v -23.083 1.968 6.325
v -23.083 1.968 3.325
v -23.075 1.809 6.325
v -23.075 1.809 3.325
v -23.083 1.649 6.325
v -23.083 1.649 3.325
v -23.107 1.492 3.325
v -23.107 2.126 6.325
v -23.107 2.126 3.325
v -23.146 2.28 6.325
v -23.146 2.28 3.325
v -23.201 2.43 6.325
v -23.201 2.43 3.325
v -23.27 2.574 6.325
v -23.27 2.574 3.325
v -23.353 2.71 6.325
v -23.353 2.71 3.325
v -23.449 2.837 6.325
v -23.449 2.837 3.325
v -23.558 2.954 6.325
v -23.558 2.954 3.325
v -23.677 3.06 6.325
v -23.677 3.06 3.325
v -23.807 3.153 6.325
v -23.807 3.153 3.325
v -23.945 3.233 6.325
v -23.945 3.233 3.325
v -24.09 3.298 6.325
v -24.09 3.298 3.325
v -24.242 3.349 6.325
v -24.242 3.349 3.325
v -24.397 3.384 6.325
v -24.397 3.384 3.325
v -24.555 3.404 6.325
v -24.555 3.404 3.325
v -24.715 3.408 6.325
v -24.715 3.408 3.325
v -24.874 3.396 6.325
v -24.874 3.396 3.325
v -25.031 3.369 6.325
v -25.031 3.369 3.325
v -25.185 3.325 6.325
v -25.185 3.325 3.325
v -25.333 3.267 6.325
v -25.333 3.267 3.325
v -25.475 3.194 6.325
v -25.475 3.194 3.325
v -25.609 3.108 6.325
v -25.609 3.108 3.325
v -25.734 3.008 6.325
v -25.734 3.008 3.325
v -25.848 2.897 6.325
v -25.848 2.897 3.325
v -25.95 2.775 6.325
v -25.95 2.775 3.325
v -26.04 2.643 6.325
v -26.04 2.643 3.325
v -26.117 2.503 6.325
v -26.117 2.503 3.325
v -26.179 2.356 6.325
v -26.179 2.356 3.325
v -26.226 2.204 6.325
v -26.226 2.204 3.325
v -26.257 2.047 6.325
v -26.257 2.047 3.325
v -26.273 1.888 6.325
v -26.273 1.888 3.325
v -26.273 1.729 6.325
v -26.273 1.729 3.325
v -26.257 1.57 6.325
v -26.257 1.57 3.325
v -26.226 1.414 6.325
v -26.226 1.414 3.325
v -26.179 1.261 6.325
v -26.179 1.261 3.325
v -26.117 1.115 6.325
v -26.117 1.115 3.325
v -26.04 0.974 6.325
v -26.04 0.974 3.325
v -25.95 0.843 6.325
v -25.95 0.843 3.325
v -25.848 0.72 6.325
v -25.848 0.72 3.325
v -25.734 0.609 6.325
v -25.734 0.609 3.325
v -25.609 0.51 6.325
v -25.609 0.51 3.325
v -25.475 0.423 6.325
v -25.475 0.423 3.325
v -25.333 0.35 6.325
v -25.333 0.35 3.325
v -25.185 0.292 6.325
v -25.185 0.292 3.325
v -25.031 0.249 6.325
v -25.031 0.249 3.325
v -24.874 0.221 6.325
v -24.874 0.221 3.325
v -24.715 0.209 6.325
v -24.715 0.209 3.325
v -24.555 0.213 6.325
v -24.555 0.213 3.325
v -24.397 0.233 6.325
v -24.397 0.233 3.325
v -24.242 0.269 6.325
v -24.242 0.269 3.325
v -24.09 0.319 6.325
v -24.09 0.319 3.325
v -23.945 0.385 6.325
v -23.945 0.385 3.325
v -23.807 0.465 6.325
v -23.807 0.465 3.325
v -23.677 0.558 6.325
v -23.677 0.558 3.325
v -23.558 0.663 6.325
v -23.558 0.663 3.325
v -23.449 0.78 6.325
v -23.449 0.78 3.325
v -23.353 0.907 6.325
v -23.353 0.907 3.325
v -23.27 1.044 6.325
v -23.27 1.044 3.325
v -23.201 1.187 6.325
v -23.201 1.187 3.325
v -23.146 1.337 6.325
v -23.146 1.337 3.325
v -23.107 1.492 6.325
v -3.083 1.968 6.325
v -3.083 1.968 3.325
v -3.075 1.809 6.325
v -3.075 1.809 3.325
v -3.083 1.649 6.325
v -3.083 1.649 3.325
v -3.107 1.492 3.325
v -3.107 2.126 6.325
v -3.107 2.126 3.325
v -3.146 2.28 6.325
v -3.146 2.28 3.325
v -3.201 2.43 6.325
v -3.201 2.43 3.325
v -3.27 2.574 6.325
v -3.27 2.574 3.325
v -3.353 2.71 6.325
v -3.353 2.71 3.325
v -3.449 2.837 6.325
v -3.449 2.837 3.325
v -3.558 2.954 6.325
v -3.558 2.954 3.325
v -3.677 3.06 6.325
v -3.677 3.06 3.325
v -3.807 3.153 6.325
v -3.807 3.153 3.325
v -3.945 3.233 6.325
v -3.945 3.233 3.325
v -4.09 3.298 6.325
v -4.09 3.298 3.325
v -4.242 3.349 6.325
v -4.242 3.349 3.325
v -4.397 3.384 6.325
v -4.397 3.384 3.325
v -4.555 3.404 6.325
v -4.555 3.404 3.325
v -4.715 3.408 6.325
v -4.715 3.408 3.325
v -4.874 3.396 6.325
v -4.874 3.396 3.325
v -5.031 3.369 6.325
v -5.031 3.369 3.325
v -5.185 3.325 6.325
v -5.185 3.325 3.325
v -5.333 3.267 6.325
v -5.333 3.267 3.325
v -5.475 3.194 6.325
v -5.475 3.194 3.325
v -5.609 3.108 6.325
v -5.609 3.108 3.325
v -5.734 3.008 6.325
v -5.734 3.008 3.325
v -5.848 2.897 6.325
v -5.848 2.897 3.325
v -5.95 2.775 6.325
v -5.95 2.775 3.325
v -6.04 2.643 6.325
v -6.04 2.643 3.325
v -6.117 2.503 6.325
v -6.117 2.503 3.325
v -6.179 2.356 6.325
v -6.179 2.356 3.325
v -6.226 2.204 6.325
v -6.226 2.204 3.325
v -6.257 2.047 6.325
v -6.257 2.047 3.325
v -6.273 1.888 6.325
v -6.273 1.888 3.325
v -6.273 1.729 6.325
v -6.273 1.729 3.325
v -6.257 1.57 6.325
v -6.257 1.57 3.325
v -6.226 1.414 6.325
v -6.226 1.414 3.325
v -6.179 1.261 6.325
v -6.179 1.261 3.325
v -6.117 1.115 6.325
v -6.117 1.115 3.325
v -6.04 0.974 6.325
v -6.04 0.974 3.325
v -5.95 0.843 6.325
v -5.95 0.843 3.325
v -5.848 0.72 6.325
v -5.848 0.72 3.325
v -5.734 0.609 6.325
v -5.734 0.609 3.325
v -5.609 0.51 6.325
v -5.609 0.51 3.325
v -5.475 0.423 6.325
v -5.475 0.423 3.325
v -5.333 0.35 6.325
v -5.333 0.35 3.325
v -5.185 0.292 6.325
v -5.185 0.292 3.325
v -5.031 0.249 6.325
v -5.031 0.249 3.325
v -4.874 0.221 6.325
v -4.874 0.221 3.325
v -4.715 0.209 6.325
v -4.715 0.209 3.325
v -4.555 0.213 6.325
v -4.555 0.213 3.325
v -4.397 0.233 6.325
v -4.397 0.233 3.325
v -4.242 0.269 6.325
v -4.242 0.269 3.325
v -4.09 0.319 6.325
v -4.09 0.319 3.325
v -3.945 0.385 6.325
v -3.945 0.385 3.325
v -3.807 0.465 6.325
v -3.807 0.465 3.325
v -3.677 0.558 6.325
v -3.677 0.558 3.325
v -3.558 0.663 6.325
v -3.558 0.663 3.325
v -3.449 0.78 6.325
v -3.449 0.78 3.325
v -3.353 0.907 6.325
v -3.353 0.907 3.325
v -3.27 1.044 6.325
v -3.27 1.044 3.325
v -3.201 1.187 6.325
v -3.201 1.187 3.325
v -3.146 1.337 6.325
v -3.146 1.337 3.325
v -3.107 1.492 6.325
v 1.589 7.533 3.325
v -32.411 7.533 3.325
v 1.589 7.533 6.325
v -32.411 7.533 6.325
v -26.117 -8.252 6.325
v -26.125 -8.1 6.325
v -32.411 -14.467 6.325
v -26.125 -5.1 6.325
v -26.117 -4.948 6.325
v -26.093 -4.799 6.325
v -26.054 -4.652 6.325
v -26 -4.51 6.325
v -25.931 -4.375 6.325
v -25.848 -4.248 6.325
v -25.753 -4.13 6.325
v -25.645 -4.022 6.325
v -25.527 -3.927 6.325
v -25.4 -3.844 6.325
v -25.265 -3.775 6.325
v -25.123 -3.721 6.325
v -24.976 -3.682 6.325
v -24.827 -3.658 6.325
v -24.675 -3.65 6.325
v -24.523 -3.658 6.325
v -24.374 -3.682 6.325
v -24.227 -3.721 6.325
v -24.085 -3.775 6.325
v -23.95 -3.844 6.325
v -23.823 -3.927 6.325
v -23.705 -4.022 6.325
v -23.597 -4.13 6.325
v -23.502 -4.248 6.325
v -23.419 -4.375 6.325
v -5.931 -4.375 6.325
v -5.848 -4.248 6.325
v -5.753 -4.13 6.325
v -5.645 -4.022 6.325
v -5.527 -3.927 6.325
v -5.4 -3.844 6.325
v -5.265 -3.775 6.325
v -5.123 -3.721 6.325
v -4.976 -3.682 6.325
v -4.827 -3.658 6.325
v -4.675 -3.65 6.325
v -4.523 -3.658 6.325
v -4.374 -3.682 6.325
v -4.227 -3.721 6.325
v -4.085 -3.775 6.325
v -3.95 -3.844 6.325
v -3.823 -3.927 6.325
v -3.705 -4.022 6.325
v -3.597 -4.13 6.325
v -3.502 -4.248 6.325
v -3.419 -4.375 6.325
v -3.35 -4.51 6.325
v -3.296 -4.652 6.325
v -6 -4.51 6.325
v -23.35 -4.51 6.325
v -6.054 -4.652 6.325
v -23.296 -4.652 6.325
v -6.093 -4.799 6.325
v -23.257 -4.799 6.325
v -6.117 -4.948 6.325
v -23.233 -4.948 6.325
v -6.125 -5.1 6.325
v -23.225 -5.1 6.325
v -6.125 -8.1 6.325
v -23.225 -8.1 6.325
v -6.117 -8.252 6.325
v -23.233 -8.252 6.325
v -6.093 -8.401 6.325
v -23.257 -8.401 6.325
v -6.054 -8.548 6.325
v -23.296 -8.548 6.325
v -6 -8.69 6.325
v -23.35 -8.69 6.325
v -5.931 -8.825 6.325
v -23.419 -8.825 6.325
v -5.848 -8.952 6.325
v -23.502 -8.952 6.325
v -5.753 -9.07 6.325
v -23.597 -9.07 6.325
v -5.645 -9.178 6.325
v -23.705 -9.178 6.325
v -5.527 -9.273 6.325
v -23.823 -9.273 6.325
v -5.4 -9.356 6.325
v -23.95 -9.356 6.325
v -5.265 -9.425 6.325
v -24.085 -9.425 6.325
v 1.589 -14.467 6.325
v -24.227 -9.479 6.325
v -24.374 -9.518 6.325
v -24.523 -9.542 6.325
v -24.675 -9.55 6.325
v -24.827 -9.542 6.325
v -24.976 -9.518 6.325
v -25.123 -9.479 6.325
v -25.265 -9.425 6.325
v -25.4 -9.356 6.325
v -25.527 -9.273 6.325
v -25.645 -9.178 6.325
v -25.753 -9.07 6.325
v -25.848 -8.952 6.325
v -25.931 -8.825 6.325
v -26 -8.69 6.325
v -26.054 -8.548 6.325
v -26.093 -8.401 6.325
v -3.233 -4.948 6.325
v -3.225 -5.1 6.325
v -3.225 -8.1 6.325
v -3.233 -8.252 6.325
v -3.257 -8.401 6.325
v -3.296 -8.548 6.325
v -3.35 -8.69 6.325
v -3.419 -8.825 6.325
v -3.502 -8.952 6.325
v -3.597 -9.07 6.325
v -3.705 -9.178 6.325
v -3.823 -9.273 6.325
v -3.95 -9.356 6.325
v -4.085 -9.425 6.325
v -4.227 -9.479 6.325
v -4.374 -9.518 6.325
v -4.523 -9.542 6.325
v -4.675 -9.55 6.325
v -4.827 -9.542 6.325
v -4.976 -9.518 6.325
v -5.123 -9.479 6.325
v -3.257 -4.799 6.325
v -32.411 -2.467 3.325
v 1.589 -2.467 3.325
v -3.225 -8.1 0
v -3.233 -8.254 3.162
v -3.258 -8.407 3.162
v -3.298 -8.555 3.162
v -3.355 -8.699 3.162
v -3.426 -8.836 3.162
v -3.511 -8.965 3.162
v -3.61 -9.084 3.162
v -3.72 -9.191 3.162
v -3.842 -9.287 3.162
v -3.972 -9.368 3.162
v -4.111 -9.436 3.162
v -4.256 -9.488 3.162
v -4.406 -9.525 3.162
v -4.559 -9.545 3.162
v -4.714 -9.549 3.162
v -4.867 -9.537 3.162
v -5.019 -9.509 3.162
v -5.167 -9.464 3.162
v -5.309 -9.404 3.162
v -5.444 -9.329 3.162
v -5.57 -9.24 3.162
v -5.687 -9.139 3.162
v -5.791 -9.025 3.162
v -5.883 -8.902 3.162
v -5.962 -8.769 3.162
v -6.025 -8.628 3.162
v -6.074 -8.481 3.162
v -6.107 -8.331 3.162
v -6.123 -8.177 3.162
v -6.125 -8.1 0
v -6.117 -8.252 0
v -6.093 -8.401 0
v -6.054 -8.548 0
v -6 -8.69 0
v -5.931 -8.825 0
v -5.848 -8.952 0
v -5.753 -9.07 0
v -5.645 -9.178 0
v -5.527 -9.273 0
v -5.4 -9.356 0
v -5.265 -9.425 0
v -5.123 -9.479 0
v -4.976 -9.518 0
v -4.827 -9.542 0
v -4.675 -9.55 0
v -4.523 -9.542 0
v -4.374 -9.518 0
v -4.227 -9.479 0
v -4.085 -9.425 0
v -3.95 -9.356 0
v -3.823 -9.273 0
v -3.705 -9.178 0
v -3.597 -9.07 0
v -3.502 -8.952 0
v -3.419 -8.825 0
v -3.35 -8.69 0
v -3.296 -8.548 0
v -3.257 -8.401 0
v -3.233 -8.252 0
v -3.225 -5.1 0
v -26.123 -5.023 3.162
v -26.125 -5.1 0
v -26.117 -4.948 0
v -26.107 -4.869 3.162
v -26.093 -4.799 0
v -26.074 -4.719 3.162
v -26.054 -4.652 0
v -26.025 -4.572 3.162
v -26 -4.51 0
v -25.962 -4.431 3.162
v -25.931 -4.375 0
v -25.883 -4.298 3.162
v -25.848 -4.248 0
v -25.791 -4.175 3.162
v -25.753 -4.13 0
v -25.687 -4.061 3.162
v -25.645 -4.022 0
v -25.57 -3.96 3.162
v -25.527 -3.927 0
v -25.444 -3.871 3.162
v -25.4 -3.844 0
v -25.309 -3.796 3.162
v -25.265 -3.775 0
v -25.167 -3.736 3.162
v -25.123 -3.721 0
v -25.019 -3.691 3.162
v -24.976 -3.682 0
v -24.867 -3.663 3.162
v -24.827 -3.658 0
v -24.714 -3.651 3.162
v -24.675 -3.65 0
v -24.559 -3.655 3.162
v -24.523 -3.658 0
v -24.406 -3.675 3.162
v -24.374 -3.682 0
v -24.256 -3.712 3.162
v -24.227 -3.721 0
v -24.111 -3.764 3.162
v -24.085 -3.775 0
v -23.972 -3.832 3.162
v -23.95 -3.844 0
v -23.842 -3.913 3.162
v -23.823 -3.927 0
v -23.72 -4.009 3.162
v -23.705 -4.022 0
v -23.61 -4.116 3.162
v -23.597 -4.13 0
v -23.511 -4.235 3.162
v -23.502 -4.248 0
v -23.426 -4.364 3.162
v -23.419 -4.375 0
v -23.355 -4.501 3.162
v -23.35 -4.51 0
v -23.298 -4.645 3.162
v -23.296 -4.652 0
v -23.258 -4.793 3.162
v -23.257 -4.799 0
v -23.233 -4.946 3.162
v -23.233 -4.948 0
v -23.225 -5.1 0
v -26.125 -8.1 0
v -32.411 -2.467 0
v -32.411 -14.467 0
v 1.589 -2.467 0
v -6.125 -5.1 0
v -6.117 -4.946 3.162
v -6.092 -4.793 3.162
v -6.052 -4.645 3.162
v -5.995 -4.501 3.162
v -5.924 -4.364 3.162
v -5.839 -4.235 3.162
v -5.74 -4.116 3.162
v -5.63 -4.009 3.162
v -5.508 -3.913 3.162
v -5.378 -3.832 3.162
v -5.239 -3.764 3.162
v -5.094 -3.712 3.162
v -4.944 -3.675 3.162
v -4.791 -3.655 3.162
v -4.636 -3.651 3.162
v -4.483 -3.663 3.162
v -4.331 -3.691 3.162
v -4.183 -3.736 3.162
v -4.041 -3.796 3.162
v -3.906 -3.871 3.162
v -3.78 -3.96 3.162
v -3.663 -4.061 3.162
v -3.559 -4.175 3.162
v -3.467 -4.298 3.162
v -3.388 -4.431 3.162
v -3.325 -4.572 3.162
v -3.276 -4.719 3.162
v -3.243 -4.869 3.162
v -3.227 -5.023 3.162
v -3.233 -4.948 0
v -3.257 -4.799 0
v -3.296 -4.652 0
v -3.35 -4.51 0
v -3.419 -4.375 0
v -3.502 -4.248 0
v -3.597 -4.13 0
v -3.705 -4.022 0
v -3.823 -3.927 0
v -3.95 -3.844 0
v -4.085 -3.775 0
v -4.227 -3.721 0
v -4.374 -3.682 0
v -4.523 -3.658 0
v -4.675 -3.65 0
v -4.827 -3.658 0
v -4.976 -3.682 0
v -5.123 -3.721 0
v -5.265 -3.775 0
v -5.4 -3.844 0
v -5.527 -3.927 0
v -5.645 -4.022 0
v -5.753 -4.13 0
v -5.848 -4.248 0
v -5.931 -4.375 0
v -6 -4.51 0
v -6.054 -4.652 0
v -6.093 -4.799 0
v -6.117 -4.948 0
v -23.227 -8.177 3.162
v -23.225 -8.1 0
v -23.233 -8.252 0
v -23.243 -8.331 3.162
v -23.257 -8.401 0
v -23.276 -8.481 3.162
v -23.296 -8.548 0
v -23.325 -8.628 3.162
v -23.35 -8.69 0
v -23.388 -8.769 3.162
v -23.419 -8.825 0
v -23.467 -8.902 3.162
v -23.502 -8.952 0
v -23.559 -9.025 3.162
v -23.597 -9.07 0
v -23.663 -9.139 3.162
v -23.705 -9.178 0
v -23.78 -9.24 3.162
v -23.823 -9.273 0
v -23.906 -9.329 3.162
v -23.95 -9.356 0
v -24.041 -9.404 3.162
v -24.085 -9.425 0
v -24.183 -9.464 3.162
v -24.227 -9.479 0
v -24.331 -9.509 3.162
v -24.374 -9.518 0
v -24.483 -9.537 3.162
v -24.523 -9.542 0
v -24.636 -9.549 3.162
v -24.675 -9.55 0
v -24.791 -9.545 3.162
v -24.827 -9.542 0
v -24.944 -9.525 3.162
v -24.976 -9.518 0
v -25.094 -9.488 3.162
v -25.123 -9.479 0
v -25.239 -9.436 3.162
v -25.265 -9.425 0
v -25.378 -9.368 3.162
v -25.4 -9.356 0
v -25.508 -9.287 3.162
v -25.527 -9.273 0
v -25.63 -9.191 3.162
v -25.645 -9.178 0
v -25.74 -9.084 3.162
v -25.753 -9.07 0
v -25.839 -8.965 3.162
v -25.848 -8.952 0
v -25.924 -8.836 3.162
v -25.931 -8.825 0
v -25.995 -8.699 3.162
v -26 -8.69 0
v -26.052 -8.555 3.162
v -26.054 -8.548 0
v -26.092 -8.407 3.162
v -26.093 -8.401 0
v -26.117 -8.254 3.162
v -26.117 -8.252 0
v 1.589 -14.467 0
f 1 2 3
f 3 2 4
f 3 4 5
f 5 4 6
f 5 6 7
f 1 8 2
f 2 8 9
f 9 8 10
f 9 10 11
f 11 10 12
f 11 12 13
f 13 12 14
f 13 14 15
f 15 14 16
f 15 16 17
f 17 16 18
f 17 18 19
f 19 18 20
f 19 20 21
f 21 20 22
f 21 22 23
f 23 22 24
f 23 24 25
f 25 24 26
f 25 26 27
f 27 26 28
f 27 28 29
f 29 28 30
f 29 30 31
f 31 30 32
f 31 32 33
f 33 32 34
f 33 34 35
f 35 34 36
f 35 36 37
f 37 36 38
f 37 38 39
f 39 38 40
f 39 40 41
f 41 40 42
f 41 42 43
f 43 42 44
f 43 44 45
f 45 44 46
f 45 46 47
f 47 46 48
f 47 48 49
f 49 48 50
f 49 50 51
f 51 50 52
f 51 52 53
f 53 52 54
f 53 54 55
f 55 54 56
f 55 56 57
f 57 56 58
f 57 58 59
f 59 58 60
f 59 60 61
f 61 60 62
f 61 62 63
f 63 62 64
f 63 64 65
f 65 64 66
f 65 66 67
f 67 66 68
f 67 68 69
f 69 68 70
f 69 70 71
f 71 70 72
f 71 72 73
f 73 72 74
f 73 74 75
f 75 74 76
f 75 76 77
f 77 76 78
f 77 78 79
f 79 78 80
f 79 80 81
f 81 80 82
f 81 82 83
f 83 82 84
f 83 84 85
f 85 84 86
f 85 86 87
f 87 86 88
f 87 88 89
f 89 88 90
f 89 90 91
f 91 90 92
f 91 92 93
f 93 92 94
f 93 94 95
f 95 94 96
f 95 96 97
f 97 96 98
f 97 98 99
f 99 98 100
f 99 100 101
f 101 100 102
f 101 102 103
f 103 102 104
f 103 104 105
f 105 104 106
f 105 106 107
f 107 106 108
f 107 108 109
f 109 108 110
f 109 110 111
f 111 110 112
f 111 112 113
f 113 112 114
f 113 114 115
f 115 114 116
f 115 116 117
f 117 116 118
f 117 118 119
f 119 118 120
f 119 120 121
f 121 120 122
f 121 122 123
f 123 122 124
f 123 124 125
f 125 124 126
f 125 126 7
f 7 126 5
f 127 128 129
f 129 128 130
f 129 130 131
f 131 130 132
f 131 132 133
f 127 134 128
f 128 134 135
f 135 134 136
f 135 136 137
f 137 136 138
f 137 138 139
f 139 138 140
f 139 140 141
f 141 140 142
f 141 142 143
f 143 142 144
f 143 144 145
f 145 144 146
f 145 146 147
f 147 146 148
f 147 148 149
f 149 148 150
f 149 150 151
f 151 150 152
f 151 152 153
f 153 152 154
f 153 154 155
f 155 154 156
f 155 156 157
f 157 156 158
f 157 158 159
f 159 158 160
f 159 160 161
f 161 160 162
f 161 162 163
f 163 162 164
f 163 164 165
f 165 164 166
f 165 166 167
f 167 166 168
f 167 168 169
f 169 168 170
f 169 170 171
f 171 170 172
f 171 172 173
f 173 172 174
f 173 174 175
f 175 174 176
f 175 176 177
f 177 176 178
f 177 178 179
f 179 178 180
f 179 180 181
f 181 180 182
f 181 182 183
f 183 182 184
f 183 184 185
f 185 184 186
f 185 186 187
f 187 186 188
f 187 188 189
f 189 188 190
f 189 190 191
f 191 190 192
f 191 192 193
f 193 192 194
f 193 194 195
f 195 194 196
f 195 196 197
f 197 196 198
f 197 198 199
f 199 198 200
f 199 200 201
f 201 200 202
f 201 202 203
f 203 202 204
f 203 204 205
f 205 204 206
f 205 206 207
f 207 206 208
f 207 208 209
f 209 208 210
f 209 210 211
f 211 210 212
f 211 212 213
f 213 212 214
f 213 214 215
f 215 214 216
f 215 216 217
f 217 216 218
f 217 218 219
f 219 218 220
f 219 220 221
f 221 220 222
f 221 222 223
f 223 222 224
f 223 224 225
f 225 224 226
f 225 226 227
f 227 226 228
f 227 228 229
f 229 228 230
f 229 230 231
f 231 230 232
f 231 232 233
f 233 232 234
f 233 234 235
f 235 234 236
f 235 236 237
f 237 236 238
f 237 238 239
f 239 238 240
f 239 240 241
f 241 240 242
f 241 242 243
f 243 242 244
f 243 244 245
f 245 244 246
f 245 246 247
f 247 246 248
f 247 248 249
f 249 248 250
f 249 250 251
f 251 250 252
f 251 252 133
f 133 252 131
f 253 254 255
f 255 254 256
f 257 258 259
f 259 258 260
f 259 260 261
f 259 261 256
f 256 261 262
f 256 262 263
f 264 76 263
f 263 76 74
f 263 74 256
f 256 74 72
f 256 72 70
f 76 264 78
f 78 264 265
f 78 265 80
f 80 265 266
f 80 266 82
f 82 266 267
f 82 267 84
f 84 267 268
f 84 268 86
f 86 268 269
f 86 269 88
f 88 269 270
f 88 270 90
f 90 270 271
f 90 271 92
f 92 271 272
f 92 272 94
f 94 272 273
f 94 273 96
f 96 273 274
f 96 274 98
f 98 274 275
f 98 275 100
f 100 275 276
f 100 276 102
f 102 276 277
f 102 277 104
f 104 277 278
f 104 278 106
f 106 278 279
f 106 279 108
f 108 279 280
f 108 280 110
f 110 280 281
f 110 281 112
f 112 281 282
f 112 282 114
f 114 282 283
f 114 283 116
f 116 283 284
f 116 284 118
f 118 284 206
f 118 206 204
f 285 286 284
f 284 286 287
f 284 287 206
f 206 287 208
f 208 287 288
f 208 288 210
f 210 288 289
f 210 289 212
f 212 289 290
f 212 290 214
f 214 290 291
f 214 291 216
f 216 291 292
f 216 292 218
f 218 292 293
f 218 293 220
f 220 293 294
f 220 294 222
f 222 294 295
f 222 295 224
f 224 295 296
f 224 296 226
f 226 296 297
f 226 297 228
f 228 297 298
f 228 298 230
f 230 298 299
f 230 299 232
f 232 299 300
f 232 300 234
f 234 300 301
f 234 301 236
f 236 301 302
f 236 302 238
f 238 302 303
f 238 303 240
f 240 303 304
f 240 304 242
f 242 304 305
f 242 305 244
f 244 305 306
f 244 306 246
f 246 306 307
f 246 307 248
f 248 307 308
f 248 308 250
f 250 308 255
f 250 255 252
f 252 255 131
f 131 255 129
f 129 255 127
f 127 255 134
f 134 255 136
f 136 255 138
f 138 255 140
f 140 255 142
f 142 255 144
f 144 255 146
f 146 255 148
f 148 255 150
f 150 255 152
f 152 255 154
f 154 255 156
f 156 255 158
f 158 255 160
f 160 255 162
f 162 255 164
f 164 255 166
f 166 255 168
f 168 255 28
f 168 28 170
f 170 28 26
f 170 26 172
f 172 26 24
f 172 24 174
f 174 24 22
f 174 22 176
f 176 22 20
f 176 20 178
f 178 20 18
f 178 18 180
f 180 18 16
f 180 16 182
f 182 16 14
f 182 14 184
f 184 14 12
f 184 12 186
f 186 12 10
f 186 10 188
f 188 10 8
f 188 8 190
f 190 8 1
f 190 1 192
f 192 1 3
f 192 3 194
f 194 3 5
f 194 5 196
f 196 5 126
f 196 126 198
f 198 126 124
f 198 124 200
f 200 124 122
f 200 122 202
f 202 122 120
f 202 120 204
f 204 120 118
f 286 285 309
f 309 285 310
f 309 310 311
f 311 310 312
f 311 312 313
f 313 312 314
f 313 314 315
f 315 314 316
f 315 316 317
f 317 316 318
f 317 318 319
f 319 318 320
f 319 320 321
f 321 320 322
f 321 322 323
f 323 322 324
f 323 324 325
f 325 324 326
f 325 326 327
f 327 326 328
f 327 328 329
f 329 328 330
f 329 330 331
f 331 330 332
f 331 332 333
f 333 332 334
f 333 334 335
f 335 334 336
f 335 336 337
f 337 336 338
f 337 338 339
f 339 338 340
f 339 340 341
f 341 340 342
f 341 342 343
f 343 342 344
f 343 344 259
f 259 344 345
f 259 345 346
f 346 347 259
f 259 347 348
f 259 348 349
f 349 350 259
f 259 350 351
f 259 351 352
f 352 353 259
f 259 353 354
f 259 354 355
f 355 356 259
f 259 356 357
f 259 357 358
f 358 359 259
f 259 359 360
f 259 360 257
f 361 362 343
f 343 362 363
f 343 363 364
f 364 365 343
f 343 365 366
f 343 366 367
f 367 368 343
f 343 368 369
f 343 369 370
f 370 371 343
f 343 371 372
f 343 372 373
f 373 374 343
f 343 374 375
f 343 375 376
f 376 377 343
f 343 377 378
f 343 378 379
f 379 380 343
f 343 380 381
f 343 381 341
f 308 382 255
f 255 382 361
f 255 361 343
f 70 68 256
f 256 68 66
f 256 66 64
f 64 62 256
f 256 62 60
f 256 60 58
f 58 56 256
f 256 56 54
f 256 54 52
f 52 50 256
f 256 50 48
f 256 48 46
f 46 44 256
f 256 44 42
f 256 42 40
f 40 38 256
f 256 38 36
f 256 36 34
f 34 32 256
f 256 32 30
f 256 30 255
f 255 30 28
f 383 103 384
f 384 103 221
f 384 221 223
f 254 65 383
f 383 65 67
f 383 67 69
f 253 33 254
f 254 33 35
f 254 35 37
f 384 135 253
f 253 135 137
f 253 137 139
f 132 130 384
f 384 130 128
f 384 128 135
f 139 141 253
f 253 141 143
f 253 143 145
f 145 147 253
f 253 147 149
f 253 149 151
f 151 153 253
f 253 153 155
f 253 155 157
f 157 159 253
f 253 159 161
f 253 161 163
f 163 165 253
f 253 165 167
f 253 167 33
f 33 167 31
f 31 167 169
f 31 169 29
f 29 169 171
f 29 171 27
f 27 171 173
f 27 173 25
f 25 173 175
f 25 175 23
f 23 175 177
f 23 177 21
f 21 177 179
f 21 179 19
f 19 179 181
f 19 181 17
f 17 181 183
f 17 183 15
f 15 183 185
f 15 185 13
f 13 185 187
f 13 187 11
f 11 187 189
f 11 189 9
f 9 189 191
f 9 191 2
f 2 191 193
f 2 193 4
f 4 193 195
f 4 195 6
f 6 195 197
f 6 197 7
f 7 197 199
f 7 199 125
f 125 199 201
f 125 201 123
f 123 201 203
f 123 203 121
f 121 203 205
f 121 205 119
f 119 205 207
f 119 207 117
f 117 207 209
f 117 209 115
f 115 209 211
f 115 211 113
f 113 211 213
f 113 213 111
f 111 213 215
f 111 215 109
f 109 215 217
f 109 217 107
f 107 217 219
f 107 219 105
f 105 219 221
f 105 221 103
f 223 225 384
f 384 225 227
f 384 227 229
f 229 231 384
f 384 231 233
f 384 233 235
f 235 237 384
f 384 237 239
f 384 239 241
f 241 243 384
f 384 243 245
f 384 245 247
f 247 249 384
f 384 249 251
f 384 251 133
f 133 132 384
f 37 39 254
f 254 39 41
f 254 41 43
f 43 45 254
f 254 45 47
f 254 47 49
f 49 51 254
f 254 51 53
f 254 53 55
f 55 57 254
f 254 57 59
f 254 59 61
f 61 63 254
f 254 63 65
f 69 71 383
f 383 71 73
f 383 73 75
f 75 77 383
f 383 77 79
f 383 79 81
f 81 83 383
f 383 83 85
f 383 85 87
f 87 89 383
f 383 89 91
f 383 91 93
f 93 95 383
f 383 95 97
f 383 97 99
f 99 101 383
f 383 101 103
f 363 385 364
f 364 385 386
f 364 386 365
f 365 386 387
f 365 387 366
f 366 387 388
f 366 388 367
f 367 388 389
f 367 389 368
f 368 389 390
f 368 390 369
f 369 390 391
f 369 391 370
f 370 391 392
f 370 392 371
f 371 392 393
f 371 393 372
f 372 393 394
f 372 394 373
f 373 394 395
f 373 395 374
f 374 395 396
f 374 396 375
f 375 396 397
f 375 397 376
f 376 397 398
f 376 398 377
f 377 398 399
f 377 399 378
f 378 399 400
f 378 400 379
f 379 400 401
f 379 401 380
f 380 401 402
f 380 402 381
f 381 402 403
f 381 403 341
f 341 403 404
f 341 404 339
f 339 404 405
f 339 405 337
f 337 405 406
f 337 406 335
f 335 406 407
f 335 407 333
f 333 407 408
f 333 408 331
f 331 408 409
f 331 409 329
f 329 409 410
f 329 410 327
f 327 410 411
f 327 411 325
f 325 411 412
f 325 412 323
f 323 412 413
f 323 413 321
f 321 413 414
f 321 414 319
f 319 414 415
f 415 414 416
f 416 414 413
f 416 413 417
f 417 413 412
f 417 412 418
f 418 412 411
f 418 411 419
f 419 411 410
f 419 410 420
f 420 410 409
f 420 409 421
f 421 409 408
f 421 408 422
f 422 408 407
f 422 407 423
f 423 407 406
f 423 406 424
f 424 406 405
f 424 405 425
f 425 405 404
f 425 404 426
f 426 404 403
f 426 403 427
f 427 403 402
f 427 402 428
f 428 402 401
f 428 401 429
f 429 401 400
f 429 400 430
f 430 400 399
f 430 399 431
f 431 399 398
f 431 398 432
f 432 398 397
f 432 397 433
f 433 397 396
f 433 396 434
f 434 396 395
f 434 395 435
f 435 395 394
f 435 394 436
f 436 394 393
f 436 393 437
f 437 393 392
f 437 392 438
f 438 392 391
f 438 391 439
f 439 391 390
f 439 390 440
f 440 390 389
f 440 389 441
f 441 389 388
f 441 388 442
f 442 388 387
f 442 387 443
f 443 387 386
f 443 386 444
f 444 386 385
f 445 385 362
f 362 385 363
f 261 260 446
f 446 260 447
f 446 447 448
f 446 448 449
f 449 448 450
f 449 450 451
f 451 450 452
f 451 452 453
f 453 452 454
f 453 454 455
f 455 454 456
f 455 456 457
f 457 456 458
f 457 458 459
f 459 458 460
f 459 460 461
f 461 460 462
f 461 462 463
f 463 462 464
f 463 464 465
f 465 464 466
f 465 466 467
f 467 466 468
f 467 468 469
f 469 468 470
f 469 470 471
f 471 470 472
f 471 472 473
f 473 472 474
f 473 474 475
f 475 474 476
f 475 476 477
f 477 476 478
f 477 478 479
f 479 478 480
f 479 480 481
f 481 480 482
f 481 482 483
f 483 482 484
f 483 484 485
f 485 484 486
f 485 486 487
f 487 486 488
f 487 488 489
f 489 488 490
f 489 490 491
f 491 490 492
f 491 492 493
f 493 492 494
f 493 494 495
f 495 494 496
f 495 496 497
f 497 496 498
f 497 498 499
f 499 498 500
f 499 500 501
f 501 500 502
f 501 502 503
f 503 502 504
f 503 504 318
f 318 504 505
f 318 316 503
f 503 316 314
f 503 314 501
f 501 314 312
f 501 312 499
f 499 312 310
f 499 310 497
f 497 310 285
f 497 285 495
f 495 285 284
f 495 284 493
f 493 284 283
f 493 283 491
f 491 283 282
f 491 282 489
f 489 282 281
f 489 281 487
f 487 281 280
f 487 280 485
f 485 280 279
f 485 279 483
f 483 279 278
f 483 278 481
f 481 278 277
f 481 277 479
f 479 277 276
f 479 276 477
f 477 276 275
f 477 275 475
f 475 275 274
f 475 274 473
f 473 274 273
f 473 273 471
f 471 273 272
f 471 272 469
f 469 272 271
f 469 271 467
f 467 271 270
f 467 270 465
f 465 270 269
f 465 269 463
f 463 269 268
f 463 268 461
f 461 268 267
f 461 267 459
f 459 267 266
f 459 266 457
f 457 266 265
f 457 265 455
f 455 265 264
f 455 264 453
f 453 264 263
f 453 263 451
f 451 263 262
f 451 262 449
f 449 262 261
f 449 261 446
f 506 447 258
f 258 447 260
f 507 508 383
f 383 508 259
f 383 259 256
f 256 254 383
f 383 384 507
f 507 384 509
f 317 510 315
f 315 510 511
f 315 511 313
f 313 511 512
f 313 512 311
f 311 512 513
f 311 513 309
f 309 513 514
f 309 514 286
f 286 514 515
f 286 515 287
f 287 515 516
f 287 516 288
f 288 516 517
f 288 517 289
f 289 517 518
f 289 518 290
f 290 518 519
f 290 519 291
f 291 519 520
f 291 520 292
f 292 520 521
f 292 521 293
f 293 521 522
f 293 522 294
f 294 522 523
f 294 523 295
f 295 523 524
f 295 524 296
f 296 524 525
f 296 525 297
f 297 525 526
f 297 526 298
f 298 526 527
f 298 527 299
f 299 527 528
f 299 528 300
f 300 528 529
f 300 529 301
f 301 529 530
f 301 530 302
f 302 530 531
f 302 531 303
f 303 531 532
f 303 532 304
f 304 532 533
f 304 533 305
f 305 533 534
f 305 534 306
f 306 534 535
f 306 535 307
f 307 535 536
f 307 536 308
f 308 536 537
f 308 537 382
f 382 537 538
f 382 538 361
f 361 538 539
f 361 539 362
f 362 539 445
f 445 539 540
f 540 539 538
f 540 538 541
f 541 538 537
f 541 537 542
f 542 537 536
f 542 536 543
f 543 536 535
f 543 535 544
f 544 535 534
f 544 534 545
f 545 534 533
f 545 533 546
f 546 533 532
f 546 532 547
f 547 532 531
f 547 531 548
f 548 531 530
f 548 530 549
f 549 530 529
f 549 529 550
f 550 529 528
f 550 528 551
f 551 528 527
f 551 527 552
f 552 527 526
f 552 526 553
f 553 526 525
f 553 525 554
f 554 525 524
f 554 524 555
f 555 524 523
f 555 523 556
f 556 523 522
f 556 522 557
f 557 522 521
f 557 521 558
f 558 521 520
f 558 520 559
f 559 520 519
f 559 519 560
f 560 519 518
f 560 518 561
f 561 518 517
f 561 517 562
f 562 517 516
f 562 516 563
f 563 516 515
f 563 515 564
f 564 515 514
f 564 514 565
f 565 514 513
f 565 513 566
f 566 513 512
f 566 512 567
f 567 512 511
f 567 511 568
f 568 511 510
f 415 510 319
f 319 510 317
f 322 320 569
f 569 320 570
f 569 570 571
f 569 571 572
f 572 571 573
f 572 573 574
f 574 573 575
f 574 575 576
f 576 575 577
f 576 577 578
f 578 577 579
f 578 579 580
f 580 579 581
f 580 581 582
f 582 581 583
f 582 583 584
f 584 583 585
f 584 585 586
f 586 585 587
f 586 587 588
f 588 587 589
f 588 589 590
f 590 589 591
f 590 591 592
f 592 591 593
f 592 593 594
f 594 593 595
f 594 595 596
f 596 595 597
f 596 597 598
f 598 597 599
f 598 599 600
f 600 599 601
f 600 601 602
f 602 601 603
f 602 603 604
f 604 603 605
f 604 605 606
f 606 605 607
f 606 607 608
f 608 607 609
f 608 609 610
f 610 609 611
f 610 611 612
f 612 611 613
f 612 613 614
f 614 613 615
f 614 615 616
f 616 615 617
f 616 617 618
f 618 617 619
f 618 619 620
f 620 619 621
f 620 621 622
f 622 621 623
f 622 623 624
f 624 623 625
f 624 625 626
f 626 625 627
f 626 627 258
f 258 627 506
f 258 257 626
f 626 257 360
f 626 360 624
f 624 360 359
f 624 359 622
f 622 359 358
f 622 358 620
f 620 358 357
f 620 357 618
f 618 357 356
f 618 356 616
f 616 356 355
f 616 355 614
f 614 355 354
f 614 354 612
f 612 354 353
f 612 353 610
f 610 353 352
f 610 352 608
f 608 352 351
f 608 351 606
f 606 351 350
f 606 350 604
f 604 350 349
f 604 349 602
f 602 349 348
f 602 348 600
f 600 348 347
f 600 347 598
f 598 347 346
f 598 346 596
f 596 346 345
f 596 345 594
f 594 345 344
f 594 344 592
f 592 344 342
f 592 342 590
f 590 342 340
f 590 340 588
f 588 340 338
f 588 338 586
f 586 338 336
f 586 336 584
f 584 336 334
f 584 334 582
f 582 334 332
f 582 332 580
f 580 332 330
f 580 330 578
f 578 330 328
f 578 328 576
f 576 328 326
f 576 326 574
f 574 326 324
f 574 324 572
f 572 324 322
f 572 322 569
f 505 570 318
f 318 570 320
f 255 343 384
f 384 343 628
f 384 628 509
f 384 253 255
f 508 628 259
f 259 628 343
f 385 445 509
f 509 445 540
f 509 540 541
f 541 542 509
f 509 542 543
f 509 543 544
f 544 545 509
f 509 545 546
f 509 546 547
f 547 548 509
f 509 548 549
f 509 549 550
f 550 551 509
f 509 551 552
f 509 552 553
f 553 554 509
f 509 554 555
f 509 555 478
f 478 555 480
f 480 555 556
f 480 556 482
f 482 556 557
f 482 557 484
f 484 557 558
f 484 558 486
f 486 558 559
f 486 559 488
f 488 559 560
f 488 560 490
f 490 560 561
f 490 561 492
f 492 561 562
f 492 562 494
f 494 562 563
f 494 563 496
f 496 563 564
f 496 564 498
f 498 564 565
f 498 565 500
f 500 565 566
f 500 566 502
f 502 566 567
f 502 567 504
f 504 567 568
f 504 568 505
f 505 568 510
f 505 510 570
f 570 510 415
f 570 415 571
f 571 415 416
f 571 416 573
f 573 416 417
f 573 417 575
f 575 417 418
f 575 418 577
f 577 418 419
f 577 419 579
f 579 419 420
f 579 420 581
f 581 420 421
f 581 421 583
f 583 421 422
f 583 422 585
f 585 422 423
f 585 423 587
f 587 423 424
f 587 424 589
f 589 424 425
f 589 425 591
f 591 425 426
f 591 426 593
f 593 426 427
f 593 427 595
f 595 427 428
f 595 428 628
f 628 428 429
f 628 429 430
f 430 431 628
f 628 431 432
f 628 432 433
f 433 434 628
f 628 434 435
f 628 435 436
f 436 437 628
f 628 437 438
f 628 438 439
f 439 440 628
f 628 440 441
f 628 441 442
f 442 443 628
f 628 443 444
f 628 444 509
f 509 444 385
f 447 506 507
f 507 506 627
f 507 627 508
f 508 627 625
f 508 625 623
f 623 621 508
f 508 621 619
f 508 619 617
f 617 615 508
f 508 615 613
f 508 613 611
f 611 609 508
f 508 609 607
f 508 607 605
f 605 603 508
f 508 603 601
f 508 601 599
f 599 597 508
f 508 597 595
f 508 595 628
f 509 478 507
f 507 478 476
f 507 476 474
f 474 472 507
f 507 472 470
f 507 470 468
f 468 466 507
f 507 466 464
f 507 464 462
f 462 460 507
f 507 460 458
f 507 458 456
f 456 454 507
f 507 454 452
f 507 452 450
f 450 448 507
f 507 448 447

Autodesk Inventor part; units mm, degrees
ref_plane "YZ Plane" through (0, 0, 0) normal (1, 0, 0) x (0, 1, 0)
ref_plane "XZ Plane" through (0, 0, 0) normal (0, 1, 0) x (-1, 0, 0)
ref_plane "Work Plane1" through (0, 0, 0) normal (0, 0, 1) x (1, 0, 0)
sketch "Sketch1" plane through (0, 0, 0) normal (0, 0, 1) x (1, 0, 0)
  circle A0 centre (-24.675, -5.1) radius 1.25 projected
  circle A1 centre (-4.675, -5.1) radius 1.25 projected
  line L0 (-32.4114, -2.1) -> (22.9321, -2.1) construction
  line L1 (-32.4114, -2.4674) -> (1.5886, -2.4674)
  line L2 (1.5886, -2.4674) -> (1.5886, -14.4674)
  line L3 (1.5886, -14.4674) -> (-32.4114, -14.4674)
  line L4 (-32.4114, -14.4674) -> (-32.4114, -2.4674)
  circle A2 centre (-24.675, -5.1) radius 1.45
  circle A3 centre (-4.675, -5.1) radius 1.45
  line L5 (-24.675, -5.1) -> (-24.675, -8.1)
  line L6 (-23.225, -5.1) -> (-23.225, -8.1)
  line L7 (-26.125, -8.1) -> (-26.125, -5.1)
  arc A4 (-23.225, -5.1) -> (-26.125, -5.1) centre (-24.675, -5.1) ccw
  arc A5 (-26.125, -8.1) -> (-23.225, -8.1) centre (-24.675, -8.1) ccw
  line L8 (-4.675, -5.1) -> (-4.675, -8.1)
  line L9 (-6.125, -5.1) -> (-6.125, -8.1)
  line L10 (-3.225, -8.1) -> (-3.225, -5.1)
  arc A6 (-3.225, -5.1) -> (-6.125, -5.1) centre (-4.675, -5.1) ccw
  arc A7 (-6.125, -8.1) -> (-3.225, -8.1) centre (-4.675, -8.1) ccw
  point P0 (0, 0)
  point P1 (-24.675, -6.6)
  point P2 (-4.675, -6.6)
  dimension "d0" = 34
  dimension "d1" = 12
  dimension "d2" = 2.9
  dimension "d3" = 2.9
  dimension "d4" = 3
  dimension "d5" = 3
ref_plane "Work Plane2" through (-108.8568, -31.2741, 3.325) normal (0, 0, 1) x (0.8192, 0.5736, 0)
extrude "Extrusion1" add sketch "Sketch1" along normal up to surface (3.325 mm away) contours L1 L2 L3 L4
sketch "Sketch2" plane through (-32.4114, -2.4674, 3.325) normal (0, 0, 1) x (1, 0, 0)
  circle A0 centre (27.7364, 4.2761) radius 1.6 projected
  circle A1 centre (7.7364, 4.2761) radius 1.6 projected
  line L0 (-8.2471, 157.2957) -> (-14.2937, 153.0618) projected
  line L1 (8.339, 104.3183) -> (-14.2937, 153.0618) projected
  line L2 (8.339, 104.3183) -> (0.8847, 99.0987) projected
  line L3 (0.8847, 99.0987) -> (0, 100.3623) projected
  line L4 (0, 100.3623) -> (0, 0.3674) projected
  line L5 (0, 0.3674) -> (55.3435, 0.3674) projected
  line L6 (55.3435, 0.3674) -> (57.5639, -2.8038) projected
  line L7 (57.5639, -2.8038) -> (65.7554, 2.932) projected
  line L8 (65.7554, 2.932) -> (31.3409, 52.0811) projected
  line L9 (31.3409, 52.0811) -> (41.1707, 58.964) projected
  line L10 (41.1707, 58.964) -> (36.2423, 66.0024) projected
  arc A2 (34.9764, 70.0175) -> (36.2423, 66.0024) centre (41.9764, 70.0175) ccw projected
  line L11 (34.9764, 70.0175) -> (34.9764, 131.4195) projected
  arc A3 (34.9764, 131.4195) -> (31.2086, 137.6285) centre (27.9764, 131.4195) ccw projected
  line L12 (31.2086, 137.6285) -> (10.9451, 148.1771) projected
  arc A4 (10.9451, 148.1771) -> (3.6978, 147.7021) centre (7.7129, 141.968) ccw projected
  line L13 (3.6978, 147.7021) -> (0.1902, 145.246) projected
  line L14 (-8.2471, 157.2957) -> (0.1902, 145.246) projected
  line L15 (6.7364, -8.3116) -> (6.7364, -9.6116) projected
  line L16 (7.7364, -12.1836) -> (7.7364, -9.6116) projected
  line L17 (34, 0) -> (34, -12) projected
  line L18 (0, 0) -> (34, 0) projected
  line L19 (0, -12) -> (0, 0) projected
  line L20 (34, -12) -> (0, -12) projected
  arc A5 (6.2864, -5.6326) -> (9.1864, -5.6326) centre (7.7364, -5.6326) ccw projected
  line L21 (6.2864, -2.6326) -> (6.2864, -5.6326) projected
  arc A6 (9.1864, -2.6326) -> (6.2864, -2.6326) centre (7.7364, -2.6326) ccw projected
  line L22 (9.1864, -5.6326) -> (9.1864, -2.6326) projected
  arc A7 (29.1864, -2.6326) -> (26.2864, -2.6326) centre (27.7364, -2.6326) ccw projected
  line L23 (29.1864, -5.6326) -> (29.1864, -2.6326) projected
  arc A8 (26.2864, -5.6326) -> (29.1864, -5.6326) centre (27.7364, -5.6326) ccw projected
  line L24 (26.2864, -2.6326) -> (26.2864, -5.6326) projected
  line L25 (0, 0) -> (34, 0) projected
  line L26 (0, 0) -> (34, 0)
  line L27 (34, 0) -> (34, 10)
  line L28 (34, 10) -> (0, 10)
  line L29 (0, 10) -> (0, 0)
  point P0 (32.4114, 2.4674)
  dimension "d8" = 10
extrude "Extrusion2" add sketch "Sketch2" along normal blind 3 contours L28 L27 L5 L4 | L5 L27 L18 L29 | L18 L17 L20 L19
properties part number "cellSTORM_Alvium_cameraadapter"
